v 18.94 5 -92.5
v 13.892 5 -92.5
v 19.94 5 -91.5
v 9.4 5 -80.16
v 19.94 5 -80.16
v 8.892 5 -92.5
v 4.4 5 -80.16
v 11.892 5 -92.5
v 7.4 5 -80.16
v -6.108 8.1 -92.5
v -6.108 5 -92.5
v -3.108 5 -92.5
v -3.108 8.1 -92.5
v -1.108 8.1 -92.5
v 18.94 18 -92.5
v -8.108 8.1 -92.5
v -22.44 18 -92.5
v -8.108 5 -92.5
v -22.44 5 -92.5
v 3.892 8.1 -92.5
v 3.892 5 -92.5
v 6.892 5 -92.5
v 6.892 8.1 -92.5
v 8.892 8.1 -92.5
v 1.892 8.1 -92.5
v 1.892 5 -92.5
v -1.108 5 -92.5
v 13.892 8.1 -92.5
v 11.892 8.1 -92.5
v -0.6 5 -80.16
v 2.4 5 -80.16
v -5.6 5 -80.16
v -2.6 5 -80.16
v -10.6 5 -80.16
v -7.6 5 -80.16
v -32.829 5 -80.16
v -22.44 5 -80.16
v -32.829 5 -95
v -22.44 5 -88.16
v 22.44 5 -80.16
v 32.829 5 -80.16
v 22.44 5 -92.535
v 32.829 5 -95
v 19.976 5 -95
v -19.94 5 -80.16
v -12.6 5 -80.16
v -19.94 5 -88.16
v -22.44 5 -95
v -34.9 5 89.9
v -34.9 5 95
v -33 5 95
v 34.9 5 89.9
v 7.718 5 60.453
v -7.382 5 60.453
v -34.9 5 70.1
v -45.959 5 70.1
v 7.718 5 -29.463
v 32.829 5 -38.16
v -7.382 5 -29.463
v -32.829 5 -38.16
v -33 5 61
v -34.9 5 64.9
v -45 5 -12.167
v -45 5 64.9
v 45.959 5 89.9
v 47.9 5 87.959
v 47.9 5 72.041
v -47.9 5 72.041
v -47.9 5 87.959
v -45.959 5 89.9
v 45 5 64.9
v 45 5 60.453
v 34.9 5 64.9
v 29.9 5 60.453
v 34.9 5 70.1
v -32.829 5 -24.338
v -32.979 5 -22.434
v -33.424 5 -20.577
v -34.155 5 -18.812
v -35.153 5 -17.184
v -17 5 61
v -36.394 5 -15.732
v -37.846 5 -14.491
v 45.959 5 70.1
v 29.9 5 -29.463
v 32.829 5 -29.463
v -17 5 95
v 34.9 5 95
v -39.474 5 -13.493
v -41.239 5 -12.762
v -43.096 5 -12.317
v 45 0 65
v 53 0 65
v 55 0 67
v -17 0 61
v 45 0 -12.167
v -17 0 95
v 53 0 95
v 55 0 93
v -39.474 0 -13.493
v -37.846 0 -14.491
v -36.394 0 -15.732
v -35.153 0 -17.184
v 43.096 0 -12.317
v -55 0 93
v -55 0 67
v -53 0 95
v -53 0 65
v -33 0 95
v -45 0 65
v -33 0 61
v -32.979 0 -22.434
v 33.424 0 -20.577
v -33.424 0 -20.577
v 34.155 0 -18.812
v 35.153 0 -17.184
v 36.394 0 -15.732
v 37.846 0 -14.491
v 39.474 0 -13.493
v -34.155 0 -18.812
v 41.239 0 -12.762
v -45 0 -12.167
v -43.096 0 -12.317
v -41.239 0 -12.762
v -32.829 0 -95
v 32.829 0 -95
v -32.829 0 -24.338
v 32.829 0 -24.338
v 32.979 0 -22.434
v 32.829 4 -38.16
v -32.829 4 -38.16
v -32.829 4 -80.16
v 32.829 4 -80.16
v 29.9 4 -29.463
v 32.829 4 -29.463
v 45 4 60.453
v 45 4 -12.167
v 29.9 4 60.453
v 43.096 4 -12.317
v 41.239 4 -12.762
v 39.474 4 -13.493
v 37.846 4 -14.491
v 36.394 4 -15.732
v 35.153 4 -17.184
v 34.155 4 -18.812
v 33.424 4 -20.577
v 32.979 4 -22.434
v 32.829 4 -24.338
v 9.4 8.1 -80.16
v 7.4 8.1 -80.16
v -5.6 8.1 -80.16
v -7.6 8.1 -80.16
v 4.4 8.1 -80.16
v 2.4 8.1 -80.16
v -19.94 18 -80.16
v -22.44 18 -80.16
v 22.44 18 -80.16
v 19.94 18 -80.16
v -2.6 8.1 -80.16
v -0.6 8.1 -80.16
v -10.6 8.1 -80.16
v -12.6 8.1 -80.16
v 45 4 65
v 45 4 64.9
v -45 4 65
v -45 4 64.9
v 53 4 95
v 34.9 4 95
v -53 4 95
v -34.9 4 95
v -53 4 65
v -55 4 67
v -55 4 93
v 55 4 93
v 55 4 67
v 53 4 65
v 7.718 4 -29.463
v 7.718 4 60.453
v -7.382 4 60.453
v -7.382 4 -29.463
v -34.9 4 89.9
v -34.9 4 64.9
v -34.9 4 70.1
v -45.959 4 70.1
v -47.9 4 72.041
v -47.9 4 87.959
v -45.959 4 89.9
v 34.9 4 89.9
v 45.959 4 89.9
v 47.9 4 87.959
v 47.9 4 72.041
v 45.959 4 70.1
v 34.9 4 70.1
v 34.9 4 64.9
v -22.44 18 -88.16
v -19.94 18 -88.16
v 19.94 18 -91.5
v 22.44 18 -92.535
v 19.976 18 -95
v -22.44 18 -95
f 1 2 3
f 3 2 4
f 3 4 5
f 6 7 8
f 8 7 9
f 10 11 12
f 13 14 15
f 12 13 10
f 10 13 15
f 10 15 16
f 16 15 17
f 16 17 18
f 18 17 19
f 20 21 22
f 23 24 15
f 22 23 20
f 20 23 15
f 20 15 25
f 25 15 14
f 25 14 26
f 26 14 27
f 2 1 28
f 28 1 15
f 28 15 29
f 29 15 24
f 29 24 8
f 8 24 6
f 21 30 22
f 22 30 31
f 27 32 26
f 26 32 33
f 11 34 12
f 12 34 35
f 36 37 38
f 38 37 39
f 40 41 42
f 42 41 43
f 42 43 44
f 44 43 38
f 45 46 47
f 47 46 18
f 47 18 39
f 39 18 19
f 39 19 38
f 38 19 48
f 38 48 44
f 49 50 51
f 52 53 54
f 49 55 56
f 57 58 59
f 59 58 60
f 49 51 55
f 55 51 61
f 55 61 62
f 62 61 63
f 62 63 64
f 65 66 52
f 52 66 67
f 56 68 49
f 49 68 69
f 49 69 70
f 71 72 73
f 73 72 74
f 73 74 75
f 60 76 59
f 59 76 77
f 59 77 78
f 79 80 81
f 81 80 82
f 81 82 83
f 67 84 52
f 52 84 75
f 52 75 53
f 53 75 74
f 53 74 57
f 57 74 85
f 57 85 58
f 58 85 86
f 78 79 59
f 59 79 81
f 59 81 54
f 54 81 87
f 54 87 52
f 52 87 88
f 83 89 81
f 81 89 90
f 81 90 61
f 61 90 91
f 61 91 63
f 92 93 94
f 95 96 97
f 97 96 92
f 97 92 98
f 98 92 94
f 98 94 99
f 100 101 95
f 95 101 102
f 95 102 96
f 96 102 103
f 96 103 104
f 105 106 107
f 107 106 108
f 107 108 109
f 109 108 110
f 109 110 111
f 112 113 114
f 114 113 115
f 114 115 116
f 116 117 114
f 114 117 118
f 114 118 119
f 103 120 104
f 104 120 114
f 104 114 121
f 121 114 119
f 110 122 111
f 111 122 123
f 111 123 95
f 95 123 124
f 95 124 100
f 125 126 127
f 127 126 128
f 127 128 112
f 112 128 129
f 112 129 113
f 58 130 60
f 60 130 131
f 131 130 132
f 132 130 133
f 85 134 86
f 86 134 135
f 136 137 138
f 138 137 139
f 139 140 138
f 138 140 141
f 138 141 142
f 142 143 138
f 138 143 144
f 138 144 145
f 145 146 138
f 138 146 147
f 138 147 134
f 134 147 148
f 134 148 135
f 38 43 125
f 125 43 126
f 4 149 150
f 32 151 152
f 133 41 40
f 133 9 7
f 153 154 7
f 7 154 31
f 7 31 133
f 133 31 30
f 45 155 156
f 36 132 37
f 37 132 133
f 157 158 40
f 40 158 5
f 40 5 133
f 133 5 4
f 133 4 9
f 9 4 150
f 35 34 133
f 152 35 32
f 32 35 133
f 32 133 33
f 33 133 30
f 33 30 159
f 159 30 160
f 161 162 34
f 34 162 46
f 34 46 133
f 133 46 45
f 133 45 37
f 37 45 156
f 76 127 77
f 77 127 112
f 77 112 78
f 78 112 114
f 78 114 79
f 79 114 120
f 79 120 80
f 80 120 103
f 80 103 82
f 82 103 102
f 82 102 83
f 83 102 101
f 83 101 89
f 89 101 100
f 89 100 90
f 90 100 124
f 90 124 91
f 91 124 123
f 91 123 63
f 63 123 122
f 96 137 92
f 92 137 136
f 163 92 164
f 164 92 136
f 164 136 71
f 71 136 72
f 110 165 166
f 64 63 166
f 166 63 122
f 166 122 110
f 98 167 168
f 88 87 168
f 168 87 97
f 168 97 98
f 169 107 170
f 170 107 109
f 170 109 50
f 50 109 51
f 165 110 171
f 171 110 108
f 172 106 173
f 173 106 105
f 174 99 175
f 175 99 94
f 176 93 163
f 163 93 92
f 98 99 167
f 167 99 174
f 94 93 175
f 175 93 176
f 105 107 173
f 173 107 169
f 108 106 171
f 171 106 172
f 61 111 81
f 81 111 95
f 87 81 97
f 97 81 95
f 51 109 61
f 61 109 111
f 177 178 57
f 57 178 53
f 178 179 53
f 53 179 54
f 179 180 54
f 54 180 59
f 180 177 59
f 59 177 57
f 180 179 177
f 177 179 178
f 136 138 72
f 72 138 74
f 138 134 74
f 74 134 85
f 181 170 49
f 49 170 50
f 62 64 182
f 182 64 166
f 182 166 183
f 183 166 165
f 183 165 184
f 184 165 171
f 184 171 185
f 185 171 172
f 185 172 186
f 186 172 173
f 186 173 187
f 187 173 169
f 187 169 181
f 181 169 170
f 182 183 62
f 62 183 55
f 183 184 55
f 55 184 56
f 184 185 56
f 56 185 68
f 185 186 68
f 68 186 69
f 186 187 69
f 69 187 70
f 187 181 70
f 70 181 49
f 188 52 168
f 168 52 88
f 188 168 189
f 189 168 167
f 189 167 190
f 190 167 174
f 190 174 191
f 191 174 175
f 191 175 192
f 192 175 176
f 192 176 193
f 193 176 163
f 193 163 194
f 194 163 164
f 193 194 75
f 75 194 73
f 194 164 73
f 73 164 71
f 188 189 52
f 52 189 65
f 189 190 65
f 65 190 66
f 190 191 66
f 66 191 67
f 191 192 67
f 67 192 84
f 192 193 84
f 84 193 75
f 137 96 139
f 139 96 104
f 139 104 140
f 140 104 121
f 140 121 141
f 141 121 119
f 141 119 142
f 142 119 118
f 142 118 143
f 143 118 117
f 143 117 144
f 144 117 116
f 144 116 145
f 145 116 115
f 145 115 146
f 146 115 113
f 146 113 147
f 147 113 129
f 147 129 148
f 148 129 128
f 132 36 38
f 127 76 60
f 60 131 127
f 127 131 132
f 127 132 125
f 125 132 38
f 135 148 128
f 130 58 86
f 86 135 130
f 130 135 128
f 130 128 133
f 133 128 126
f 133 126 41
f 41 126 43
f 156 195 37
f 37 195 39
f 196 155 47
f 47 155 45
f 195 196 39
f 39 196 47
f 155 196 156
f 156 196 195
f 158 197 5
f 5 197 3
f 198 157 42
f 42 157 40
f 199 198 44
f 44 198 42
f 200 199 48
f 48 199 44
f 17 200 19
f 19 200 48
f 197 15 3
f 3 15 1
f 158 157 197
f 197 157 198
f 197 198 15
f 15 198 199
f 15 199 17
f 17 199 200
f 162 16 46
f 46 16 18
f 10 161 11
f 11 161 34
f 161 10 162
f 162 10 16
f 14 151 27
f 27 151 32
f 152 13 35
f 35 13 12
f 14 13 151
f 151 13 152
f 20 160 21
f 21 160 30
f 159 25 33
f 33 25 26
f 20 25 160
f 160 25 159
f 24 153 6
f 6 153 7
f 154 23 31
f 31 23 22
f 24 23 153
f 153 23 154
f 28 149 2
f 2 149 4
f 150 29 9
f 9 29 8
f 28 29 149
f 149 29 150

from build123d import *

# Parameters (mm, degrees)
SKETCH1_W                = 90
SKETCH1_H                = 190
BOSS_EXTRUDE1_DEPTH      = 5
SKETCH2_W                = 10
SKETCH2_H                = 30
BOSS_EXTRUDE2_DEPTH      = 5
CHAMFER1_SIZE            = 2
SKETCH3_W                = 16
SKETCH3_H                = 34
CUT_EXTRUDE1_DEPTH       = 50
SKETCH4_W                = 90
SKETCH4_H                = 42
CUT_EXTRUDE2_DEPTH       = 1
SKETCH7_W                = 15.1
SKETCH7_H                = 89.916335477
CUT_EXTRUDE7_DEPTH       = 1
CUT_EXTRUDE8_DEPTH       = 1
CUT_EXTRUDE9_DEPTH       = 110.886304879
CUT_EXTRUDE9_DEPTH_BACK  = 110.886304879
CUT_EXTRUDE10_DEPTH      = 110.886304879
CUT_EXTRUDE10_DEPTH_BACK = 110.886304879
BOSS_EXTRUDE4_START      = 5
SKETCH17_W               = 2.5
SKETCH17_H               = 8
BOSS_EXTRUDE4_DEPTH      = 13
BOSS_EXTRUDE5_DEPTH      = 3.1


with BuildPart() as part:
    # Sketch1 → Boss-Extrude1 (new body)
    with BuildSketch(Plane(origin=(0, 0, 0), x_dir=(1, 0, 0), z_dir=(0, 1, 0))):
        Rectangle(SKETCH1_W, SKETCH1_H)
    extrude(amount=BOSS_EXTRUDE1_DEPTH)

    # Sketch2 → Boss-Extrude2 (add)
    with BuildSketch(Plane(origin=(0, 0, 0), x_dir=(1, 0, 0), z_dir=(0, 1, 0))):
        with Locations((-50, -80)):
            Rectangle(SKETCH2_W, SKETCH2_H)
        with Locations((50, -80)):
            Rectangle(SKETCH2_W, SKETCH2_H)
    extrude(amount=BOSS_EXTRUDE2_DEPTH)

    # Chamfer1
    chamfer1_edges = [part.edges().sort_by_distance(p)[0] for p in [
        (-55, 2.5, 65),
        (-55, 2.5, 95),
        (55, 2.5, 95),
        (55, 2.5, 65),
    ]]
    chamfer(chamfer1_edges, length=CHAMFER1_SIZE)

    # Sketch3 → Cut-Extrude1 (cut)
    with BuildSketch(Plane(origin=(0, 5, 0), x_dir=(1, 0, 0), z_dir=(0, 1, 0))):
        with Locations((-25, -78)):
            Rectangle(SKETCH3_W, SKETCH3_H)
    extrude(amount=-CUT_EXTRUDE1_DEPTH, mode=Mode.SUBTRACT)

    # Sketch4 → Cut-Extrude2 (cut)
    with BuildSketch(Plane(origin=(0, 5, 0), x_dir=(1, 0, 0), z_dir=(0, 1, 0))):
        with Locations((0, 59.159820088)):
            Rectangle(SKETCH4_W, SKETCH4_H)
    extrude(amount=-CUT_EXTRUDE2_DEPTH, mode=Mode.SUBTRACT)

    # Sketch7 → Cut-Extrude7 (cut)
    with BuildSketch(Plane(origin=(0, 5, 0), x_dir=(1, 0, 0), z_dir=(0, 1, 0))):
        with Locations((37.45, -15.495273531)):
            Rectangle(SKETCH7_W, SKETCH7_H)
        with Locations((0.16773297, -15.495273531)):
            Rectangle(SKETCH7_W, SKETCH7_H)
    extrude(amount=-CUT_EXTRUDE7_DEPTH, mode=Mode.SUBTRACT)

    # Sketch8 → Cut-Extrude8 (cut)
    with BuildSketch(Plane(origin=(0, 5, 0), x_dir=(1, 0, 0), z_dir=(0, 1, 0))):
        Polygon((-34.9, -70.1), (-45.958578644, -70.1), (-47.9, -72.041421356), (-47.9, -87.958578644), (-45.958578644, -89.9), (-34.9, -89.9), (-34.9, -95.1), (-53.041421356, -95.1), (-55.1, -93.041421356), (-55.1, -66.958578644), (-53.041421356, -64.9), (-34.9, -64.9), align=None)
    cut_extrude8 = extrude(amount=-CUT_EXTRUDE8_DEPTH, mode=Mode.SUBTRACT)

    # Mirror1: Cut-Extrude8 across plane
    add(cut_extrude8.mirror(Plane(origin=(0, 0, 0), x_dir=(0, 0, 1), z_dir=(1, 0, 0))), mode=Mode.SUBTRACT)

    # Sketch14 → Cut-Extrude9 (cut, two sides: drawn at the far end of the back side and taken through both)
    with BuildSketch(Plane(origin=(0, 0, 0), x_dir=(1, 0, 0), z_dir=(0, 1, 0)).offset(-CUT_EXTRUDE9_DEPTH_BACK)):
        with BuildLine():
            Line((-45, 47.267125731), (-34.685032462, 30.799006468))
            ThreePointArc((-34.685032462, 30.799006468), (-34.351546651, 18.443044928), (-45, 12.166784925))
            Line((-45, 12.166784925), (-45, 47.267125731))
        make_face()
        with BuildLine():
            Line((45, 47.267125731), (45, 12.166784925))
            ThreePointArc((45, 12.166784925), (34.351546651, 18.443044928), (34.685032462, 30.799006468))
            Line((34.685032462, 30.799006468), (45, 47.267125731))
        make_face()
    extrude(amount=CUT_EXTRUDE9_DEPTH + CUT_EXTRUDE9_DEPTH_BACK, mode=Mode.SUBTRACT)

    # Sketch16 → Cut-Extrude10 (cut, two sides: drawn at the far end of the back side and taken through both)
    with BuildSketch(Plane(origin=(0, 0, 0), x_dir=(1, 0, 0), z_dir=(0, 1, 0)).offset(-CUT_EXTRUDE10_DEPTH_BACK)):
        with BuildLine():
            Line((-32.828659242, 95), (-32.828659242, 24.338125683))
            ThreePointArc((-32.828659242, 24.338125683), (-33.30195485, 27.699267678), (-34.685032462, 30.799006468))
            Line((-34.685032462, 30.799006468), (-45, 47.267125731))
            Line((-45, 47.267125731), (-45, 95))
            Line((-45, 95), (-32.828659242, 95))
        make_face()
        with BuildLine():
            Line((45, 95), (32.828659242, 95))
            Line((32.828659242, 95), (32.828659242, 24.338125683))
            ThreePointArc((32.828659242, 24.338125683), (33.30195485, 27.699267678), (34.685032462, 30.799006468))
            Line((34.685032462, 30.799006468), (45, 47.267125731))
            Line((45, 47.267125731), (45, 95))
        make_face()
    extrude(amount=CUT_EXTRUDE10_DEPTH + CUT_EXTRUDE10_DEPTH_BACK, mode=Mode.SUBTRACT)

    # Sketch17 → Boss-Extrude4 (add)
    with BuildSketch(Plane(origin=(0, 0, 0), x_dir=(1, 0, 0), z_dir=(0, 1, 0)).offset(BOSS_EXTRUDE4_START)):
        with Locations((-21.190023983, 84.159820088)):
            Rectangle(SKETCH17_W, SKETCH17_H)
        Polygon((-22.440023983, 94.999820088), (-22.440023983, 92.499820088), (18.940023983, 92.499820088), (19.940023983, 91.499820088), (19.940023983, 80.159820088), (22.440023983, 80.159820088), (22.440023983, 92.535353994), (19.975557889, 94.999820088), align=None)
    extrude(amount=BOSS_EXTRUDE4_DEPTH)

    # Sketch18 → Boss-Extrude5 (add)
    with BuildSketch(Plane(origin=(0, 5, 0), x_dir=(1, 0, 0), z_dir=(0, 1, 0))):
        Polygon((-12.599634528, 80.159820088), (-10.599634528, 80.159820088), (-6.108241837, 92.499820088), (-8.108241837, 92.499820088), align=None)
        Polygon((-3.108241837, 92.499820088), (-7.599634528, 80.159820088), (-5.599634528, 80.159820088), (-1.108241837, 92.499820088), align=None)
        Polygon((1.891758163, 92.499820088), (-2.599634528, 80.159820088), (-0.599634528, 80.159820088), (3.891758163, 92.499820088), align=None)
        Polygon((6.891758163, 92.499820088), (2.400365472, 80.159820088), (4.400365472, 80.159820088), (8.891758163, 92.499820088), align=None)
        Polygon((11.891758163, 92.499820088), (7.400365472, 80.159820088), (9.400365472, 80.159820088), (13.891758163, 92.499820088), align=None)
    extrude(amount=BOSS_EXTRUDE5_DEPTH)


solid = part.part
